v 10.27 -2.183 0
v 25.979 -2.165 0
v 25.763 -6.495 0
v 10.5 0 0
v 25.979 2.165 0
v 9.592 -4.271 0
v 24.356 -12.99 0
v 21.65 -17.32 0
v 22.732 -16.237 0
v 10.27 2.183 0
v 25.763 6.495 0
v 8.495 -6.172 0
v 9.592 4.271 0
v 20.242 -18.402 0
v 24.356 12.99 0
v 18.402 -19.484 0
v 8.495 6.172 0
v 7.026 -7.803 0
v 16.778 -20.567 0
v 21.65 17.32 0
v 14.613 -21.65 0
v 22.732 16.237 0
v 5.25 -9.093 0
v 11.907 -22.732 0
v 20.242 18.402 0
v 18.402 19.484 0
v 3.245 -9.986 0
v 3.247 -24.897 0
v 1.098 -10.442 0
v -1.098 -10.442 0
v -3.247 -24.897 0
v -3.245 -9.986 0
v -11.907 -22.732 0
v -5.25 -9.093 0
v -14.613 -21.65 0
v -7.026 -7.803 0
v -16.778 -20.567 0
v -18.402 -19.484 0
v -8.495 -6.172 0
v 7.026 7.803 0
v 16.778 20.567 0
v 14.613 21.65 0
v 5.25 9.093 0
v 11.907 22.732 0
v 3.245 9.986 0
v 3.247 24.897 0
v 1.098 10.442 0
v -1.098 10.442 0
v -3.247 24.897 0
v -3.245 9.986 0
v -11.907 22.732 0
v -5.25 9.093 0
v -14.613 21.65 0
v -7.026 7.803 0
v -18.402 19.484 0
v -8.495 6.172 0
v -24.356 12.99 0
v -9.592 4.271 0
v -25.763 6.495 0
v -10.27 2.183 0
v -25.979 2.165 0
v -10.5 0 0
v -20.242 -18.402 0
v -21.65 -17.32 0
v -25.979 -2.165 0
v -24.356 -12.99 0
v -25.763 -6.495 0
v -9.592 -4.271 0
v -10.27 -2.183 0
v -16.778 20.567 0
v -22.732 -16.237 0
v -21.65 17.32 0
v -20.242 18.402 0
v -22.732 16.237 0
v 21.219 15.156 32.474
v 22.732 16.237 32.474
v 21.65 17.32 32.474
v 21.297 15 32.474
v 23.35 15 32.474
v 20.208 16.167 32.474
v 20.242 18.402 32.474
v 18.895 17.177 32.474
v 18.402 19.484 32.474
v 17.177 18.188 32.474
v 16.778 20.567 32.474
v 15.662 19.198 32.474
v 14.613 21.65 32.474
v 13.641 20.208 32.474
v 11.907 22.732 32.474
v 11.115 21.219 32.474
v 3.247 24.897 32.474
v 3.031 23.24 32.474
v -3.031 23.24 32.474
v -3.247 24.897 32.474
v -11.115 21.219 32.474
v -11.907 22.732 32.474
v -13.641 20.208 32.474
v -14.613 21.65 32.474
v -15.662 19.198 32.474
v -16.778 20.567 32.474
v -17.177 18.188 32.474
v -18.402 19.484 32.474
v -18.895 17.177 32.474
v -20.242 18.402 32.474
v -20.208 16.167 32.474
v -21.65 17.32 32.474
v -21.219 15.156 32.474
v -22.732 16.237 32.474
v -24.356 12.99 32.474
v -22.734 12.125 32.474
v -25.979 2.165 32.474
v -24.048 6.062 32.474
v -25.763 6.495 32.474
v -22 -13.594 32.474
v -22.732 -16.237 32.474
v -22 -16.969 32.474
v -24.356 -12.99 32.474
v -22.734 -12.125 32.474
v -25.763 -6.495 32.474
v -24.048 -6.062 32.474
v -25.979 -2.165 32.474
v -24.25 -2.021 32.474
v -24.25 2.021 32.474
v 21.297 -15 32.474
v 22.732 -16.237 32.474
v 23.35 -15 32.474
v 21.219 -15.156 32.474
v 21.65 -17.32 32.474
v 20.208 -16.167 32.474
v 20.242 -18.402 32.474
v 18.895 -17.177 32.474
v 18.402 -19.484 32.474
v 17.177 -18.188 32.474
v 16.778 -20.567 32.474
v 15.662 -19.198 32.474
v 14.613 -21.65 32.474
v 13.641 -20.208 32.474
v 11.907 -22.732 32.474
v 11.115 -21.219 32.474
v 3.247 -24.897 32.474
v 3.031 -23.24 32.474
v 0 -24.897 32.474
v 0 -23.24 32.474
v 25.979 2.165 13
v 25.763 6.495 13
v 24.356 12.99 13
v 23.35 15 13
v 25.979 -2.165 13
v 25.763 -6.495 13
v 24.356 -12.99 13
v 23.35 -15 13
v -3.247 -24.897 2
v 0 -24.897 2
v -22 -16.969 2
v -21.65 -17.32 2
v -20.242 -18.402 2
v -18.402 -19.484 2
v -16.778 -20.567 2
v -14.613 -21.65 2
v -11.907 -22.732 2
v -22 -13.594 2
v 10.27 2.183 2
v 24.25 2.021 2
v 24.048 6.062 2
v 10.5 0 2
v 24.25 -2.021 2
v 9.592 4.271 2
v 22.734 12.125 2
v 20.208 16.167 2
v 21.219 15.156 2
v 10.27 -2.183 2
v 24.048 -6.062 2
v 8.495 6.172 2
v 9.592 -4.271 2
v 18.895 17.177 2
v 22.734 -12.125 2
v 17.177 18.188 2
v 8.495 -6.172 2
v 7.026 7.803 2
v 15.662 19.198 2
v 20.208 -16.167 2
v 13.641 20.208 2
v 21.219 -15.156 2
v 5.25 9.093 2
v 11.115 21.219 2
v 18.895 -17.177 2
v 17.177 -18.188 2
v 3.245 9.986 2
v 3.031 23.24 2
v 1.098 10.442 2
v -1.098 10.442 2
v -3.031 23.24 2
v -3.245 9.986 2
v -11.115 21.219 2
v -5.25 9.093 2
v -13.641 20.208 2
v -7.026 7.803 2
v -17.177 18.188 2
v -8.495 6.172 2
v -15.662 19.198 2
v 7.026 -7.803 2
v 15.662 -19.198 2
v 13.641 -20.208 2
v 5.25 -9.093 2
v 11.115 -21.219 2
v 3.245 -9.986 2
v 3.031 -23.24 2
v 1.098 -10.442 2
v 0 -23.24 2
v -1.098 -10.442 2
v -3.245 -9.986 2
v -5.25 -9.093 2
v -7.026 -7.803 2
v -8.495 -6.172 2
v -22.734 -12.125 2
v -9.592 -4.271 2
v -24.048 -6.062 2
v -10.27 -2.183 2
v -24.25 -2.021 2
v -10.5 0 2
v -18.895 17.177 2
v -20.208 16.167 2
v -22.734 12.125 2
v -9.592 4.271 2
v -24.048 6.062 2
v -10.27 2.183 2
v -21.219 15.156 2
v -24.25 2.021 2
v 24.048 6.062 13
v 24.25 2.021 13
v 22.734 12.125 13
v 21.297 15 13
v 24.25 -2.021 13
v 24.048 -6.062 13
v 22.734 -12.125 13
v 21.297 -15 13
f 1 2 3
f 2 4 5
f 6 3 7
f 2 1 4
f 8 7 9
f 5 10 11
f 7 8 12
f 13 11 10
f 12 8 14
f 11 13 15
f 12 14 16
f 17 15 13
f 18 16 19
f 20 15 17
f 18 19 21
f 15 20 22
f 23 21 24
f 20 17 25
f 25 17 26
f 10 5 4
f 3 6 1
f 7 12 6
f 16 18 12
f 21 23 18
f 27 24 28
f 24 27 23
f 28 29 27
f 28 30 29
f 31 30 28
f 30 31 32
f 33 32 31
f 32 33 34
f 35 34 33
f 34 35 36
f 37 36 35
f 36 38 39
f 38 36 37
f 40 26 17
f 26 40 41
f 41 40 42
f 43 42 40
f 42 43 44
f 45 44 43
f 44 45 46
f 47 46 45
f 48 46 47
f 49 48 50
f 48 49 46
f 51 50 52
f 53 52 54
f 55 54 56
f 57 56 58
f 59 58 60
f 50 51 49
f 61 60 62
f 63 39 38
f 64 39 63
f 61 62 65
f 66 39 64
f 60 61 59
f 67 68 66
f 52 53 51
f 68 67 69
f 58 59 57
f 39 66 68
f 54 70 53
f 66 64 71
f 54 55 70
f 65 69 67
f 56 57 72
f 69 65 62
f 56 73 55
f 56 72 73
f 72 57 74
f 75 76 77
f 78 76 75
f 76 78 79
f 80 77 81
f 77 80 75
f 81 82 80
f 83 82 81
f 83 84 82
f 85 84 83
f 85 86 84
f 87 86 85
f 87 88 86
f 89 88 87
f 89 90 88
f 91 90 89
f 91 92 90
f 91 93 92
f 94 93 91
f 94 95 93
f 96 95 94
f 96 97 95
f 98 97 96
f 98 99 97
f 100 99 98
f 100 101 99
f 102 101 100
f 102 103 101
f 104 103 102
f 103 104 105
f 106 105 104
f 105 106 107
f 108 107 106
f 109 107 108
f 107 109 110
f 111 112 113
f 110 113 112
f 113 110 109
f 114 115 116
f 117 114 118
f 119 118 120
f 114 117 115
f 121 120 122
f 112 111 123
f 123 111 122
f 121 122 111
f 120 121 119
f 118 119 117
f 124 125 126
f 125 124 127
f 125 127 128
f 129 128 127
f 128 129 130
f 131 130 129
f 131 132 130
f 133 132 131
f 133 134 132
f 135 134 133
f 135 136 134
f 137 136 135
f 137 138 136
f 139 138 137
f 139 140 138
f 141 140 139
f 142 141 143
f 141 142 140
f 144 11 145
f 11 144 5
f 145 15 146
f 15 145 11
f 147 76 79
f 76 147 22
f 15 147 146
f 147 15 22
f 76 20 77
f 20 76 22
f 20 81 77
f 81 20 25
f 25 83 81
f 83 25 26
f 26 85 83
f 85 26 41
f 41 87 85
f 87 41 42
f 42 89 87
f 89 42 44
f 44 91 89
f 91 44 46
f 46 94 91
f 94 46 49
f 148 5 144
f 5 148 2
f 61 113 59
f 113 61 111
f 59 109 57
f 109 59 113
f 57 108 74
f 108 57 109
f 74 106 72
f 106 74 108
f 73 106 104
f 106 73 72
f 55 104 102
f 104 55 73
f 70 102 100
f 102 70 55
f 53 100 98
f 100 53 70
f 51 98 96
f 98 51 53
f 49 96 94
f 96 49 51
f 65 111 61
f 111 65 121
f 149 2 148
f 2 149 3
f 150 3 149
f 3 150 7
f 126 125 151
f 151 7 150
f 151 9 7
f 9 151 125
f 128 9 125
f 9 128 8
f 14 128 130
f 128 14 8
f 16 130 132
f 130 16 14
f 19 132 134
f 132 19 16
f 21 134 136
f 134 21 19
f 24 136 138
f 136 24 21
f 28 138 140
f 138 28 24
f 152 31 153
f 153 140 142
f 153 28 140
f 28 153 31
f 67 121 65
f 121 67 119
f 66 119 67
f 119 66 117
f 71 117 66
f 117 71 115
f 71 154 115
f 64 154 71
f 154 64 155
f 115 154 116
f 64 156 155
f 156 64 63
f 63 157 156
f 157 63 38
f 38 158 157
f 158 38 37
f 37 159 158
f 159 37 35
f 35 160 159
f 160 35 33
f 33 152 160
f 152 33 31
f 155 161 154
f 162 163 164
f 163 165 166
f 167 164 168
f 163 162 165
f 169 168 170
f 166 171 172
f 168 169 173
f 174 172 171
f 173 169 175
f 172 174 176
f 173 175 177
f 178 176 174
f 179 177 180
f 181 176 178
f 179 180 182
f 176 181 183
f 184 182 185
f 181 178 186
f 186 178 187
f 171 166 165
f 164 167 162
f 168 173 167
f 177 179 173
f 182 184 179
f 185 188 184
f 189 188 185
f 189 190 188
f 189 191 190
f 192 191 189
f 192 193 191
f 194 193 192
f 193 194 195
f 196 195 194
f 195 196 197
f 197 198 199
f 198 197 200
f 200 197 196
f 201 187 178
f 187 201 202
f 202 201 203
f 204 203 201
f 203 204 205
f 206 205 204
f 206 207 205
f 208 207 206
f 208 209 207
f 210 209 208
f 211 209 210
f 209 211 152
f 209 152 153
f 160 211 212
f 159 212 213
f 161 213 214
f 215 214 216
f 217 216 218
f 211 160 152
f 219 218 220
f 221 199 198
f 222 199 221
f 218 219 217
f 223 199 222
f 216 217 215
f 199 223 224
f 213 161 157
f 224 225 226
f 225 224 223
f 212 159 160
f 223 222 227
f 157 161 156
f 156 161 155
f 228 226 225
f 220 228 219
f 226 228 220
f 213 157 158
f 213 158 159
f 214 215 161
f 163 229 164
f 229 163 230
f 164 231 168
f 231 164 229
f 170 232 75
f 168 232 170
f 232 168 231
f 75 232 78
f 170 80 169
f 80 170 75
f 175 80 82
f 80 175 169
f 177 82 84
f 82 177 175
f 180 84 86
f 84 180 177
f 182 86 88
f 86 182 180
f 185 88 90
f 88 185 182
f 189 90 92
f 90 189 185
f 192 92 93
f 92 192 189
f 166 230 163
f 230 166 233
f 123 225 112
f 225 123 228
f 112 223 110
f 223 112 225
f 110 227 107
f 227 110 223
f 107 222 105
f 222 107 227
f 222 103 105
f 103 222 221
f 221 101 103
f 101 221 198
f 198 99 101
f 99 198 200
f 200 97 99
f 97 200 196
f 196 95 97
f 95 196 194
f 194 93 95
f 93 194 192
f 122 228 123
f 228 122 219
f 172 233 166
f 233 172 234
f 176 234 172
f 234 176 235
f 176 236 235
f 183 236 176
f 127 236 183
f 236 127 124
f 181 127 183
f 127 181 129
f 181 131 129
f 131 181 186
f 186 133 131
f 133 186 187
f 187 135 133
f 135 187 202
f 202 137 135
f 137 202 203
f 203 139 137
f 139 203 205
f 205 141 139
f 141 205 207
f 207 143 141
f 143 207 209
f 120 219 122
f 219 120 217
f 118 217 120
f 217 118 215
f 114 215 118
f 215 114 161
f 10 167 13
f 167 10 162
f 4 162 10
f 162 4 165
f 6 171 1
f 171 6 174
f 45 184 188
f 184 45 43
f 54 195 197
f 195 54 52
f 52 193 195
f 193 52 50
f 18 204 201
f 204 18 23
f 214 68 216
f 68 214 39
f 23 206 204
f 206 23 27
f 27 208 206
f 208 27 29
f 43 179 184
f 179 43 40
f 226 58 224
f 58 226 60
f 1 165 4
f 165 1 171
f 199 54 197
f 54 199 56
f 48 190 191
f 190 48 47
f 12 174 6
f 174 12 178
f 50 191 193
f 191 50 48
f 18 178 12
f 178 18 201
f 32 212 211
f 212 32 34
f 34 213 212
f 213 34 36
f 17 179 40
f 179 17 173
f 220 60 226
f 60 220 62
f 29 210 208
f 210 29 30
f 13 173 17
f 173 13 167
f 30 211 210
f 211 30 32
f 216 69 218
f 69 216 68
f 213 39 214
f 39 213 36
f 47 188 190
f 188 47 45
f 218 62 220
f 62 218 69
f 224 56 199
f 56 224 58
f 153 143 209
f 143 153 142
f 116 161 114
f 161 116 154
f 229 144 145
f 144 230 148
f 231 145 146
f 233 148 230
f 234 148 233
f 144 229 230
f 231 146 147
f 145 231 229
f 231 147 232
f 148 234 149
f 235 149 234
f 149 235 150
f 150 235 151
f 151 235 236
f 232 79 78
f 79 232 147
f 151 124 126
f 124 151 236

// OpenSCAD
// Photo of the botton of the mic used as a trace template
// Uncomment if tweaking tracing, otherwise leave be, the polygon is traced now.
// color("red")
// scale(.1)
// surface(file="mic-stand.png", center=true);

// Microphone bottom width
width = 48;

// Microphone bottom height
height = 46;

// The height of the mic holder
// Selected at this value so that the test print would surpass the protruding
// USB port and reach the bottom of the mic to be able to test fit the shape.
size = 30;

// The thickness of the wall of the shape
thickness = 2;

// The amount of play to add between the mic and the holder
// This is here to ensure I can adjust the fit iteratively until I find a good
// value where the shell around the bottom of the mic is not stretched and thus
// stressed and structurally compromised but also not too loose not holding the
// mic well.
play = .25;

// A quarter of the blueprint of the mic bottom
// The blueprint has a symmetry which makes it so that we can mirror this twice
// and get the whole shape.
module a(size) {
  linear_extrude(size)
  polygon([
    [0, 0],
    [width / 2, 0],
    [width / 2, 2],
    [width / 2 - .1, 4],
    [width / 2 - .2, 6],
    [width / 2 - 1.5, 12],
    [width / 2 - 3, 15],
    [width / 2 - 4, 16],
    [width / 2 - 5.3, 17],
    [width / 2 - 7, 18],
    [width / 2 - 8.5, 19],
    [width / 2 - 10.5, 20],
    [width / 2 - 13, 21],
    [width / 2 - 17, 22],
    [width / 2 - 21, 23],
    [0, height / 2],
  ]);
}

// A half of the mic bottom blueprint
module b(size) {
  a(size);
  mirror([1, 0, 0]) a(size);
}

// The entirety of the mic bottom blueprint
module c(size) {
  b(size);
  mirror([0, 1, 0]) b(size);
}

// The scale by which to grow the outer shell to achieve a so-thick wall
// The calculation takes the size with the walls and divides it by the actual
// size producing the scale factor needed to raise the dimensions to grow to
// the larger size.
innerFactor = (width + play * 2) / width;
outerFactor = (width + play * 2 + thickness * 2) / (width + play * 2);

// The outer shell in which the microphone can sit snugly
difference() {
  // The scaled version of the mic outline offset to make room for the walls
  scale(outerFactor)
  c(size);

  // The internal unscaled mic outline shape removed to carve out the space
  translate([0, 0, thickness])
  scale(innerFactor)
  c(size + thickness);

  // A hole for the USB connector protrusion to be able to get through
  translate([0, 0, -thickness / 2])
  cylinder(thickness * 2, 10.5, 10.5);

  // A cutout for the pop filter arm that wrap around the USB port protrusion
  translate([-width / 2 + thickness, -height, thickness])
  cube([width / 2 - thickness, height, size + thickness]);

  // A cutout for the control panel on the side of the mic (jack + knobs)
  translate([0, -15, thickness + 11])
  cube([width, 30, size]);
}
